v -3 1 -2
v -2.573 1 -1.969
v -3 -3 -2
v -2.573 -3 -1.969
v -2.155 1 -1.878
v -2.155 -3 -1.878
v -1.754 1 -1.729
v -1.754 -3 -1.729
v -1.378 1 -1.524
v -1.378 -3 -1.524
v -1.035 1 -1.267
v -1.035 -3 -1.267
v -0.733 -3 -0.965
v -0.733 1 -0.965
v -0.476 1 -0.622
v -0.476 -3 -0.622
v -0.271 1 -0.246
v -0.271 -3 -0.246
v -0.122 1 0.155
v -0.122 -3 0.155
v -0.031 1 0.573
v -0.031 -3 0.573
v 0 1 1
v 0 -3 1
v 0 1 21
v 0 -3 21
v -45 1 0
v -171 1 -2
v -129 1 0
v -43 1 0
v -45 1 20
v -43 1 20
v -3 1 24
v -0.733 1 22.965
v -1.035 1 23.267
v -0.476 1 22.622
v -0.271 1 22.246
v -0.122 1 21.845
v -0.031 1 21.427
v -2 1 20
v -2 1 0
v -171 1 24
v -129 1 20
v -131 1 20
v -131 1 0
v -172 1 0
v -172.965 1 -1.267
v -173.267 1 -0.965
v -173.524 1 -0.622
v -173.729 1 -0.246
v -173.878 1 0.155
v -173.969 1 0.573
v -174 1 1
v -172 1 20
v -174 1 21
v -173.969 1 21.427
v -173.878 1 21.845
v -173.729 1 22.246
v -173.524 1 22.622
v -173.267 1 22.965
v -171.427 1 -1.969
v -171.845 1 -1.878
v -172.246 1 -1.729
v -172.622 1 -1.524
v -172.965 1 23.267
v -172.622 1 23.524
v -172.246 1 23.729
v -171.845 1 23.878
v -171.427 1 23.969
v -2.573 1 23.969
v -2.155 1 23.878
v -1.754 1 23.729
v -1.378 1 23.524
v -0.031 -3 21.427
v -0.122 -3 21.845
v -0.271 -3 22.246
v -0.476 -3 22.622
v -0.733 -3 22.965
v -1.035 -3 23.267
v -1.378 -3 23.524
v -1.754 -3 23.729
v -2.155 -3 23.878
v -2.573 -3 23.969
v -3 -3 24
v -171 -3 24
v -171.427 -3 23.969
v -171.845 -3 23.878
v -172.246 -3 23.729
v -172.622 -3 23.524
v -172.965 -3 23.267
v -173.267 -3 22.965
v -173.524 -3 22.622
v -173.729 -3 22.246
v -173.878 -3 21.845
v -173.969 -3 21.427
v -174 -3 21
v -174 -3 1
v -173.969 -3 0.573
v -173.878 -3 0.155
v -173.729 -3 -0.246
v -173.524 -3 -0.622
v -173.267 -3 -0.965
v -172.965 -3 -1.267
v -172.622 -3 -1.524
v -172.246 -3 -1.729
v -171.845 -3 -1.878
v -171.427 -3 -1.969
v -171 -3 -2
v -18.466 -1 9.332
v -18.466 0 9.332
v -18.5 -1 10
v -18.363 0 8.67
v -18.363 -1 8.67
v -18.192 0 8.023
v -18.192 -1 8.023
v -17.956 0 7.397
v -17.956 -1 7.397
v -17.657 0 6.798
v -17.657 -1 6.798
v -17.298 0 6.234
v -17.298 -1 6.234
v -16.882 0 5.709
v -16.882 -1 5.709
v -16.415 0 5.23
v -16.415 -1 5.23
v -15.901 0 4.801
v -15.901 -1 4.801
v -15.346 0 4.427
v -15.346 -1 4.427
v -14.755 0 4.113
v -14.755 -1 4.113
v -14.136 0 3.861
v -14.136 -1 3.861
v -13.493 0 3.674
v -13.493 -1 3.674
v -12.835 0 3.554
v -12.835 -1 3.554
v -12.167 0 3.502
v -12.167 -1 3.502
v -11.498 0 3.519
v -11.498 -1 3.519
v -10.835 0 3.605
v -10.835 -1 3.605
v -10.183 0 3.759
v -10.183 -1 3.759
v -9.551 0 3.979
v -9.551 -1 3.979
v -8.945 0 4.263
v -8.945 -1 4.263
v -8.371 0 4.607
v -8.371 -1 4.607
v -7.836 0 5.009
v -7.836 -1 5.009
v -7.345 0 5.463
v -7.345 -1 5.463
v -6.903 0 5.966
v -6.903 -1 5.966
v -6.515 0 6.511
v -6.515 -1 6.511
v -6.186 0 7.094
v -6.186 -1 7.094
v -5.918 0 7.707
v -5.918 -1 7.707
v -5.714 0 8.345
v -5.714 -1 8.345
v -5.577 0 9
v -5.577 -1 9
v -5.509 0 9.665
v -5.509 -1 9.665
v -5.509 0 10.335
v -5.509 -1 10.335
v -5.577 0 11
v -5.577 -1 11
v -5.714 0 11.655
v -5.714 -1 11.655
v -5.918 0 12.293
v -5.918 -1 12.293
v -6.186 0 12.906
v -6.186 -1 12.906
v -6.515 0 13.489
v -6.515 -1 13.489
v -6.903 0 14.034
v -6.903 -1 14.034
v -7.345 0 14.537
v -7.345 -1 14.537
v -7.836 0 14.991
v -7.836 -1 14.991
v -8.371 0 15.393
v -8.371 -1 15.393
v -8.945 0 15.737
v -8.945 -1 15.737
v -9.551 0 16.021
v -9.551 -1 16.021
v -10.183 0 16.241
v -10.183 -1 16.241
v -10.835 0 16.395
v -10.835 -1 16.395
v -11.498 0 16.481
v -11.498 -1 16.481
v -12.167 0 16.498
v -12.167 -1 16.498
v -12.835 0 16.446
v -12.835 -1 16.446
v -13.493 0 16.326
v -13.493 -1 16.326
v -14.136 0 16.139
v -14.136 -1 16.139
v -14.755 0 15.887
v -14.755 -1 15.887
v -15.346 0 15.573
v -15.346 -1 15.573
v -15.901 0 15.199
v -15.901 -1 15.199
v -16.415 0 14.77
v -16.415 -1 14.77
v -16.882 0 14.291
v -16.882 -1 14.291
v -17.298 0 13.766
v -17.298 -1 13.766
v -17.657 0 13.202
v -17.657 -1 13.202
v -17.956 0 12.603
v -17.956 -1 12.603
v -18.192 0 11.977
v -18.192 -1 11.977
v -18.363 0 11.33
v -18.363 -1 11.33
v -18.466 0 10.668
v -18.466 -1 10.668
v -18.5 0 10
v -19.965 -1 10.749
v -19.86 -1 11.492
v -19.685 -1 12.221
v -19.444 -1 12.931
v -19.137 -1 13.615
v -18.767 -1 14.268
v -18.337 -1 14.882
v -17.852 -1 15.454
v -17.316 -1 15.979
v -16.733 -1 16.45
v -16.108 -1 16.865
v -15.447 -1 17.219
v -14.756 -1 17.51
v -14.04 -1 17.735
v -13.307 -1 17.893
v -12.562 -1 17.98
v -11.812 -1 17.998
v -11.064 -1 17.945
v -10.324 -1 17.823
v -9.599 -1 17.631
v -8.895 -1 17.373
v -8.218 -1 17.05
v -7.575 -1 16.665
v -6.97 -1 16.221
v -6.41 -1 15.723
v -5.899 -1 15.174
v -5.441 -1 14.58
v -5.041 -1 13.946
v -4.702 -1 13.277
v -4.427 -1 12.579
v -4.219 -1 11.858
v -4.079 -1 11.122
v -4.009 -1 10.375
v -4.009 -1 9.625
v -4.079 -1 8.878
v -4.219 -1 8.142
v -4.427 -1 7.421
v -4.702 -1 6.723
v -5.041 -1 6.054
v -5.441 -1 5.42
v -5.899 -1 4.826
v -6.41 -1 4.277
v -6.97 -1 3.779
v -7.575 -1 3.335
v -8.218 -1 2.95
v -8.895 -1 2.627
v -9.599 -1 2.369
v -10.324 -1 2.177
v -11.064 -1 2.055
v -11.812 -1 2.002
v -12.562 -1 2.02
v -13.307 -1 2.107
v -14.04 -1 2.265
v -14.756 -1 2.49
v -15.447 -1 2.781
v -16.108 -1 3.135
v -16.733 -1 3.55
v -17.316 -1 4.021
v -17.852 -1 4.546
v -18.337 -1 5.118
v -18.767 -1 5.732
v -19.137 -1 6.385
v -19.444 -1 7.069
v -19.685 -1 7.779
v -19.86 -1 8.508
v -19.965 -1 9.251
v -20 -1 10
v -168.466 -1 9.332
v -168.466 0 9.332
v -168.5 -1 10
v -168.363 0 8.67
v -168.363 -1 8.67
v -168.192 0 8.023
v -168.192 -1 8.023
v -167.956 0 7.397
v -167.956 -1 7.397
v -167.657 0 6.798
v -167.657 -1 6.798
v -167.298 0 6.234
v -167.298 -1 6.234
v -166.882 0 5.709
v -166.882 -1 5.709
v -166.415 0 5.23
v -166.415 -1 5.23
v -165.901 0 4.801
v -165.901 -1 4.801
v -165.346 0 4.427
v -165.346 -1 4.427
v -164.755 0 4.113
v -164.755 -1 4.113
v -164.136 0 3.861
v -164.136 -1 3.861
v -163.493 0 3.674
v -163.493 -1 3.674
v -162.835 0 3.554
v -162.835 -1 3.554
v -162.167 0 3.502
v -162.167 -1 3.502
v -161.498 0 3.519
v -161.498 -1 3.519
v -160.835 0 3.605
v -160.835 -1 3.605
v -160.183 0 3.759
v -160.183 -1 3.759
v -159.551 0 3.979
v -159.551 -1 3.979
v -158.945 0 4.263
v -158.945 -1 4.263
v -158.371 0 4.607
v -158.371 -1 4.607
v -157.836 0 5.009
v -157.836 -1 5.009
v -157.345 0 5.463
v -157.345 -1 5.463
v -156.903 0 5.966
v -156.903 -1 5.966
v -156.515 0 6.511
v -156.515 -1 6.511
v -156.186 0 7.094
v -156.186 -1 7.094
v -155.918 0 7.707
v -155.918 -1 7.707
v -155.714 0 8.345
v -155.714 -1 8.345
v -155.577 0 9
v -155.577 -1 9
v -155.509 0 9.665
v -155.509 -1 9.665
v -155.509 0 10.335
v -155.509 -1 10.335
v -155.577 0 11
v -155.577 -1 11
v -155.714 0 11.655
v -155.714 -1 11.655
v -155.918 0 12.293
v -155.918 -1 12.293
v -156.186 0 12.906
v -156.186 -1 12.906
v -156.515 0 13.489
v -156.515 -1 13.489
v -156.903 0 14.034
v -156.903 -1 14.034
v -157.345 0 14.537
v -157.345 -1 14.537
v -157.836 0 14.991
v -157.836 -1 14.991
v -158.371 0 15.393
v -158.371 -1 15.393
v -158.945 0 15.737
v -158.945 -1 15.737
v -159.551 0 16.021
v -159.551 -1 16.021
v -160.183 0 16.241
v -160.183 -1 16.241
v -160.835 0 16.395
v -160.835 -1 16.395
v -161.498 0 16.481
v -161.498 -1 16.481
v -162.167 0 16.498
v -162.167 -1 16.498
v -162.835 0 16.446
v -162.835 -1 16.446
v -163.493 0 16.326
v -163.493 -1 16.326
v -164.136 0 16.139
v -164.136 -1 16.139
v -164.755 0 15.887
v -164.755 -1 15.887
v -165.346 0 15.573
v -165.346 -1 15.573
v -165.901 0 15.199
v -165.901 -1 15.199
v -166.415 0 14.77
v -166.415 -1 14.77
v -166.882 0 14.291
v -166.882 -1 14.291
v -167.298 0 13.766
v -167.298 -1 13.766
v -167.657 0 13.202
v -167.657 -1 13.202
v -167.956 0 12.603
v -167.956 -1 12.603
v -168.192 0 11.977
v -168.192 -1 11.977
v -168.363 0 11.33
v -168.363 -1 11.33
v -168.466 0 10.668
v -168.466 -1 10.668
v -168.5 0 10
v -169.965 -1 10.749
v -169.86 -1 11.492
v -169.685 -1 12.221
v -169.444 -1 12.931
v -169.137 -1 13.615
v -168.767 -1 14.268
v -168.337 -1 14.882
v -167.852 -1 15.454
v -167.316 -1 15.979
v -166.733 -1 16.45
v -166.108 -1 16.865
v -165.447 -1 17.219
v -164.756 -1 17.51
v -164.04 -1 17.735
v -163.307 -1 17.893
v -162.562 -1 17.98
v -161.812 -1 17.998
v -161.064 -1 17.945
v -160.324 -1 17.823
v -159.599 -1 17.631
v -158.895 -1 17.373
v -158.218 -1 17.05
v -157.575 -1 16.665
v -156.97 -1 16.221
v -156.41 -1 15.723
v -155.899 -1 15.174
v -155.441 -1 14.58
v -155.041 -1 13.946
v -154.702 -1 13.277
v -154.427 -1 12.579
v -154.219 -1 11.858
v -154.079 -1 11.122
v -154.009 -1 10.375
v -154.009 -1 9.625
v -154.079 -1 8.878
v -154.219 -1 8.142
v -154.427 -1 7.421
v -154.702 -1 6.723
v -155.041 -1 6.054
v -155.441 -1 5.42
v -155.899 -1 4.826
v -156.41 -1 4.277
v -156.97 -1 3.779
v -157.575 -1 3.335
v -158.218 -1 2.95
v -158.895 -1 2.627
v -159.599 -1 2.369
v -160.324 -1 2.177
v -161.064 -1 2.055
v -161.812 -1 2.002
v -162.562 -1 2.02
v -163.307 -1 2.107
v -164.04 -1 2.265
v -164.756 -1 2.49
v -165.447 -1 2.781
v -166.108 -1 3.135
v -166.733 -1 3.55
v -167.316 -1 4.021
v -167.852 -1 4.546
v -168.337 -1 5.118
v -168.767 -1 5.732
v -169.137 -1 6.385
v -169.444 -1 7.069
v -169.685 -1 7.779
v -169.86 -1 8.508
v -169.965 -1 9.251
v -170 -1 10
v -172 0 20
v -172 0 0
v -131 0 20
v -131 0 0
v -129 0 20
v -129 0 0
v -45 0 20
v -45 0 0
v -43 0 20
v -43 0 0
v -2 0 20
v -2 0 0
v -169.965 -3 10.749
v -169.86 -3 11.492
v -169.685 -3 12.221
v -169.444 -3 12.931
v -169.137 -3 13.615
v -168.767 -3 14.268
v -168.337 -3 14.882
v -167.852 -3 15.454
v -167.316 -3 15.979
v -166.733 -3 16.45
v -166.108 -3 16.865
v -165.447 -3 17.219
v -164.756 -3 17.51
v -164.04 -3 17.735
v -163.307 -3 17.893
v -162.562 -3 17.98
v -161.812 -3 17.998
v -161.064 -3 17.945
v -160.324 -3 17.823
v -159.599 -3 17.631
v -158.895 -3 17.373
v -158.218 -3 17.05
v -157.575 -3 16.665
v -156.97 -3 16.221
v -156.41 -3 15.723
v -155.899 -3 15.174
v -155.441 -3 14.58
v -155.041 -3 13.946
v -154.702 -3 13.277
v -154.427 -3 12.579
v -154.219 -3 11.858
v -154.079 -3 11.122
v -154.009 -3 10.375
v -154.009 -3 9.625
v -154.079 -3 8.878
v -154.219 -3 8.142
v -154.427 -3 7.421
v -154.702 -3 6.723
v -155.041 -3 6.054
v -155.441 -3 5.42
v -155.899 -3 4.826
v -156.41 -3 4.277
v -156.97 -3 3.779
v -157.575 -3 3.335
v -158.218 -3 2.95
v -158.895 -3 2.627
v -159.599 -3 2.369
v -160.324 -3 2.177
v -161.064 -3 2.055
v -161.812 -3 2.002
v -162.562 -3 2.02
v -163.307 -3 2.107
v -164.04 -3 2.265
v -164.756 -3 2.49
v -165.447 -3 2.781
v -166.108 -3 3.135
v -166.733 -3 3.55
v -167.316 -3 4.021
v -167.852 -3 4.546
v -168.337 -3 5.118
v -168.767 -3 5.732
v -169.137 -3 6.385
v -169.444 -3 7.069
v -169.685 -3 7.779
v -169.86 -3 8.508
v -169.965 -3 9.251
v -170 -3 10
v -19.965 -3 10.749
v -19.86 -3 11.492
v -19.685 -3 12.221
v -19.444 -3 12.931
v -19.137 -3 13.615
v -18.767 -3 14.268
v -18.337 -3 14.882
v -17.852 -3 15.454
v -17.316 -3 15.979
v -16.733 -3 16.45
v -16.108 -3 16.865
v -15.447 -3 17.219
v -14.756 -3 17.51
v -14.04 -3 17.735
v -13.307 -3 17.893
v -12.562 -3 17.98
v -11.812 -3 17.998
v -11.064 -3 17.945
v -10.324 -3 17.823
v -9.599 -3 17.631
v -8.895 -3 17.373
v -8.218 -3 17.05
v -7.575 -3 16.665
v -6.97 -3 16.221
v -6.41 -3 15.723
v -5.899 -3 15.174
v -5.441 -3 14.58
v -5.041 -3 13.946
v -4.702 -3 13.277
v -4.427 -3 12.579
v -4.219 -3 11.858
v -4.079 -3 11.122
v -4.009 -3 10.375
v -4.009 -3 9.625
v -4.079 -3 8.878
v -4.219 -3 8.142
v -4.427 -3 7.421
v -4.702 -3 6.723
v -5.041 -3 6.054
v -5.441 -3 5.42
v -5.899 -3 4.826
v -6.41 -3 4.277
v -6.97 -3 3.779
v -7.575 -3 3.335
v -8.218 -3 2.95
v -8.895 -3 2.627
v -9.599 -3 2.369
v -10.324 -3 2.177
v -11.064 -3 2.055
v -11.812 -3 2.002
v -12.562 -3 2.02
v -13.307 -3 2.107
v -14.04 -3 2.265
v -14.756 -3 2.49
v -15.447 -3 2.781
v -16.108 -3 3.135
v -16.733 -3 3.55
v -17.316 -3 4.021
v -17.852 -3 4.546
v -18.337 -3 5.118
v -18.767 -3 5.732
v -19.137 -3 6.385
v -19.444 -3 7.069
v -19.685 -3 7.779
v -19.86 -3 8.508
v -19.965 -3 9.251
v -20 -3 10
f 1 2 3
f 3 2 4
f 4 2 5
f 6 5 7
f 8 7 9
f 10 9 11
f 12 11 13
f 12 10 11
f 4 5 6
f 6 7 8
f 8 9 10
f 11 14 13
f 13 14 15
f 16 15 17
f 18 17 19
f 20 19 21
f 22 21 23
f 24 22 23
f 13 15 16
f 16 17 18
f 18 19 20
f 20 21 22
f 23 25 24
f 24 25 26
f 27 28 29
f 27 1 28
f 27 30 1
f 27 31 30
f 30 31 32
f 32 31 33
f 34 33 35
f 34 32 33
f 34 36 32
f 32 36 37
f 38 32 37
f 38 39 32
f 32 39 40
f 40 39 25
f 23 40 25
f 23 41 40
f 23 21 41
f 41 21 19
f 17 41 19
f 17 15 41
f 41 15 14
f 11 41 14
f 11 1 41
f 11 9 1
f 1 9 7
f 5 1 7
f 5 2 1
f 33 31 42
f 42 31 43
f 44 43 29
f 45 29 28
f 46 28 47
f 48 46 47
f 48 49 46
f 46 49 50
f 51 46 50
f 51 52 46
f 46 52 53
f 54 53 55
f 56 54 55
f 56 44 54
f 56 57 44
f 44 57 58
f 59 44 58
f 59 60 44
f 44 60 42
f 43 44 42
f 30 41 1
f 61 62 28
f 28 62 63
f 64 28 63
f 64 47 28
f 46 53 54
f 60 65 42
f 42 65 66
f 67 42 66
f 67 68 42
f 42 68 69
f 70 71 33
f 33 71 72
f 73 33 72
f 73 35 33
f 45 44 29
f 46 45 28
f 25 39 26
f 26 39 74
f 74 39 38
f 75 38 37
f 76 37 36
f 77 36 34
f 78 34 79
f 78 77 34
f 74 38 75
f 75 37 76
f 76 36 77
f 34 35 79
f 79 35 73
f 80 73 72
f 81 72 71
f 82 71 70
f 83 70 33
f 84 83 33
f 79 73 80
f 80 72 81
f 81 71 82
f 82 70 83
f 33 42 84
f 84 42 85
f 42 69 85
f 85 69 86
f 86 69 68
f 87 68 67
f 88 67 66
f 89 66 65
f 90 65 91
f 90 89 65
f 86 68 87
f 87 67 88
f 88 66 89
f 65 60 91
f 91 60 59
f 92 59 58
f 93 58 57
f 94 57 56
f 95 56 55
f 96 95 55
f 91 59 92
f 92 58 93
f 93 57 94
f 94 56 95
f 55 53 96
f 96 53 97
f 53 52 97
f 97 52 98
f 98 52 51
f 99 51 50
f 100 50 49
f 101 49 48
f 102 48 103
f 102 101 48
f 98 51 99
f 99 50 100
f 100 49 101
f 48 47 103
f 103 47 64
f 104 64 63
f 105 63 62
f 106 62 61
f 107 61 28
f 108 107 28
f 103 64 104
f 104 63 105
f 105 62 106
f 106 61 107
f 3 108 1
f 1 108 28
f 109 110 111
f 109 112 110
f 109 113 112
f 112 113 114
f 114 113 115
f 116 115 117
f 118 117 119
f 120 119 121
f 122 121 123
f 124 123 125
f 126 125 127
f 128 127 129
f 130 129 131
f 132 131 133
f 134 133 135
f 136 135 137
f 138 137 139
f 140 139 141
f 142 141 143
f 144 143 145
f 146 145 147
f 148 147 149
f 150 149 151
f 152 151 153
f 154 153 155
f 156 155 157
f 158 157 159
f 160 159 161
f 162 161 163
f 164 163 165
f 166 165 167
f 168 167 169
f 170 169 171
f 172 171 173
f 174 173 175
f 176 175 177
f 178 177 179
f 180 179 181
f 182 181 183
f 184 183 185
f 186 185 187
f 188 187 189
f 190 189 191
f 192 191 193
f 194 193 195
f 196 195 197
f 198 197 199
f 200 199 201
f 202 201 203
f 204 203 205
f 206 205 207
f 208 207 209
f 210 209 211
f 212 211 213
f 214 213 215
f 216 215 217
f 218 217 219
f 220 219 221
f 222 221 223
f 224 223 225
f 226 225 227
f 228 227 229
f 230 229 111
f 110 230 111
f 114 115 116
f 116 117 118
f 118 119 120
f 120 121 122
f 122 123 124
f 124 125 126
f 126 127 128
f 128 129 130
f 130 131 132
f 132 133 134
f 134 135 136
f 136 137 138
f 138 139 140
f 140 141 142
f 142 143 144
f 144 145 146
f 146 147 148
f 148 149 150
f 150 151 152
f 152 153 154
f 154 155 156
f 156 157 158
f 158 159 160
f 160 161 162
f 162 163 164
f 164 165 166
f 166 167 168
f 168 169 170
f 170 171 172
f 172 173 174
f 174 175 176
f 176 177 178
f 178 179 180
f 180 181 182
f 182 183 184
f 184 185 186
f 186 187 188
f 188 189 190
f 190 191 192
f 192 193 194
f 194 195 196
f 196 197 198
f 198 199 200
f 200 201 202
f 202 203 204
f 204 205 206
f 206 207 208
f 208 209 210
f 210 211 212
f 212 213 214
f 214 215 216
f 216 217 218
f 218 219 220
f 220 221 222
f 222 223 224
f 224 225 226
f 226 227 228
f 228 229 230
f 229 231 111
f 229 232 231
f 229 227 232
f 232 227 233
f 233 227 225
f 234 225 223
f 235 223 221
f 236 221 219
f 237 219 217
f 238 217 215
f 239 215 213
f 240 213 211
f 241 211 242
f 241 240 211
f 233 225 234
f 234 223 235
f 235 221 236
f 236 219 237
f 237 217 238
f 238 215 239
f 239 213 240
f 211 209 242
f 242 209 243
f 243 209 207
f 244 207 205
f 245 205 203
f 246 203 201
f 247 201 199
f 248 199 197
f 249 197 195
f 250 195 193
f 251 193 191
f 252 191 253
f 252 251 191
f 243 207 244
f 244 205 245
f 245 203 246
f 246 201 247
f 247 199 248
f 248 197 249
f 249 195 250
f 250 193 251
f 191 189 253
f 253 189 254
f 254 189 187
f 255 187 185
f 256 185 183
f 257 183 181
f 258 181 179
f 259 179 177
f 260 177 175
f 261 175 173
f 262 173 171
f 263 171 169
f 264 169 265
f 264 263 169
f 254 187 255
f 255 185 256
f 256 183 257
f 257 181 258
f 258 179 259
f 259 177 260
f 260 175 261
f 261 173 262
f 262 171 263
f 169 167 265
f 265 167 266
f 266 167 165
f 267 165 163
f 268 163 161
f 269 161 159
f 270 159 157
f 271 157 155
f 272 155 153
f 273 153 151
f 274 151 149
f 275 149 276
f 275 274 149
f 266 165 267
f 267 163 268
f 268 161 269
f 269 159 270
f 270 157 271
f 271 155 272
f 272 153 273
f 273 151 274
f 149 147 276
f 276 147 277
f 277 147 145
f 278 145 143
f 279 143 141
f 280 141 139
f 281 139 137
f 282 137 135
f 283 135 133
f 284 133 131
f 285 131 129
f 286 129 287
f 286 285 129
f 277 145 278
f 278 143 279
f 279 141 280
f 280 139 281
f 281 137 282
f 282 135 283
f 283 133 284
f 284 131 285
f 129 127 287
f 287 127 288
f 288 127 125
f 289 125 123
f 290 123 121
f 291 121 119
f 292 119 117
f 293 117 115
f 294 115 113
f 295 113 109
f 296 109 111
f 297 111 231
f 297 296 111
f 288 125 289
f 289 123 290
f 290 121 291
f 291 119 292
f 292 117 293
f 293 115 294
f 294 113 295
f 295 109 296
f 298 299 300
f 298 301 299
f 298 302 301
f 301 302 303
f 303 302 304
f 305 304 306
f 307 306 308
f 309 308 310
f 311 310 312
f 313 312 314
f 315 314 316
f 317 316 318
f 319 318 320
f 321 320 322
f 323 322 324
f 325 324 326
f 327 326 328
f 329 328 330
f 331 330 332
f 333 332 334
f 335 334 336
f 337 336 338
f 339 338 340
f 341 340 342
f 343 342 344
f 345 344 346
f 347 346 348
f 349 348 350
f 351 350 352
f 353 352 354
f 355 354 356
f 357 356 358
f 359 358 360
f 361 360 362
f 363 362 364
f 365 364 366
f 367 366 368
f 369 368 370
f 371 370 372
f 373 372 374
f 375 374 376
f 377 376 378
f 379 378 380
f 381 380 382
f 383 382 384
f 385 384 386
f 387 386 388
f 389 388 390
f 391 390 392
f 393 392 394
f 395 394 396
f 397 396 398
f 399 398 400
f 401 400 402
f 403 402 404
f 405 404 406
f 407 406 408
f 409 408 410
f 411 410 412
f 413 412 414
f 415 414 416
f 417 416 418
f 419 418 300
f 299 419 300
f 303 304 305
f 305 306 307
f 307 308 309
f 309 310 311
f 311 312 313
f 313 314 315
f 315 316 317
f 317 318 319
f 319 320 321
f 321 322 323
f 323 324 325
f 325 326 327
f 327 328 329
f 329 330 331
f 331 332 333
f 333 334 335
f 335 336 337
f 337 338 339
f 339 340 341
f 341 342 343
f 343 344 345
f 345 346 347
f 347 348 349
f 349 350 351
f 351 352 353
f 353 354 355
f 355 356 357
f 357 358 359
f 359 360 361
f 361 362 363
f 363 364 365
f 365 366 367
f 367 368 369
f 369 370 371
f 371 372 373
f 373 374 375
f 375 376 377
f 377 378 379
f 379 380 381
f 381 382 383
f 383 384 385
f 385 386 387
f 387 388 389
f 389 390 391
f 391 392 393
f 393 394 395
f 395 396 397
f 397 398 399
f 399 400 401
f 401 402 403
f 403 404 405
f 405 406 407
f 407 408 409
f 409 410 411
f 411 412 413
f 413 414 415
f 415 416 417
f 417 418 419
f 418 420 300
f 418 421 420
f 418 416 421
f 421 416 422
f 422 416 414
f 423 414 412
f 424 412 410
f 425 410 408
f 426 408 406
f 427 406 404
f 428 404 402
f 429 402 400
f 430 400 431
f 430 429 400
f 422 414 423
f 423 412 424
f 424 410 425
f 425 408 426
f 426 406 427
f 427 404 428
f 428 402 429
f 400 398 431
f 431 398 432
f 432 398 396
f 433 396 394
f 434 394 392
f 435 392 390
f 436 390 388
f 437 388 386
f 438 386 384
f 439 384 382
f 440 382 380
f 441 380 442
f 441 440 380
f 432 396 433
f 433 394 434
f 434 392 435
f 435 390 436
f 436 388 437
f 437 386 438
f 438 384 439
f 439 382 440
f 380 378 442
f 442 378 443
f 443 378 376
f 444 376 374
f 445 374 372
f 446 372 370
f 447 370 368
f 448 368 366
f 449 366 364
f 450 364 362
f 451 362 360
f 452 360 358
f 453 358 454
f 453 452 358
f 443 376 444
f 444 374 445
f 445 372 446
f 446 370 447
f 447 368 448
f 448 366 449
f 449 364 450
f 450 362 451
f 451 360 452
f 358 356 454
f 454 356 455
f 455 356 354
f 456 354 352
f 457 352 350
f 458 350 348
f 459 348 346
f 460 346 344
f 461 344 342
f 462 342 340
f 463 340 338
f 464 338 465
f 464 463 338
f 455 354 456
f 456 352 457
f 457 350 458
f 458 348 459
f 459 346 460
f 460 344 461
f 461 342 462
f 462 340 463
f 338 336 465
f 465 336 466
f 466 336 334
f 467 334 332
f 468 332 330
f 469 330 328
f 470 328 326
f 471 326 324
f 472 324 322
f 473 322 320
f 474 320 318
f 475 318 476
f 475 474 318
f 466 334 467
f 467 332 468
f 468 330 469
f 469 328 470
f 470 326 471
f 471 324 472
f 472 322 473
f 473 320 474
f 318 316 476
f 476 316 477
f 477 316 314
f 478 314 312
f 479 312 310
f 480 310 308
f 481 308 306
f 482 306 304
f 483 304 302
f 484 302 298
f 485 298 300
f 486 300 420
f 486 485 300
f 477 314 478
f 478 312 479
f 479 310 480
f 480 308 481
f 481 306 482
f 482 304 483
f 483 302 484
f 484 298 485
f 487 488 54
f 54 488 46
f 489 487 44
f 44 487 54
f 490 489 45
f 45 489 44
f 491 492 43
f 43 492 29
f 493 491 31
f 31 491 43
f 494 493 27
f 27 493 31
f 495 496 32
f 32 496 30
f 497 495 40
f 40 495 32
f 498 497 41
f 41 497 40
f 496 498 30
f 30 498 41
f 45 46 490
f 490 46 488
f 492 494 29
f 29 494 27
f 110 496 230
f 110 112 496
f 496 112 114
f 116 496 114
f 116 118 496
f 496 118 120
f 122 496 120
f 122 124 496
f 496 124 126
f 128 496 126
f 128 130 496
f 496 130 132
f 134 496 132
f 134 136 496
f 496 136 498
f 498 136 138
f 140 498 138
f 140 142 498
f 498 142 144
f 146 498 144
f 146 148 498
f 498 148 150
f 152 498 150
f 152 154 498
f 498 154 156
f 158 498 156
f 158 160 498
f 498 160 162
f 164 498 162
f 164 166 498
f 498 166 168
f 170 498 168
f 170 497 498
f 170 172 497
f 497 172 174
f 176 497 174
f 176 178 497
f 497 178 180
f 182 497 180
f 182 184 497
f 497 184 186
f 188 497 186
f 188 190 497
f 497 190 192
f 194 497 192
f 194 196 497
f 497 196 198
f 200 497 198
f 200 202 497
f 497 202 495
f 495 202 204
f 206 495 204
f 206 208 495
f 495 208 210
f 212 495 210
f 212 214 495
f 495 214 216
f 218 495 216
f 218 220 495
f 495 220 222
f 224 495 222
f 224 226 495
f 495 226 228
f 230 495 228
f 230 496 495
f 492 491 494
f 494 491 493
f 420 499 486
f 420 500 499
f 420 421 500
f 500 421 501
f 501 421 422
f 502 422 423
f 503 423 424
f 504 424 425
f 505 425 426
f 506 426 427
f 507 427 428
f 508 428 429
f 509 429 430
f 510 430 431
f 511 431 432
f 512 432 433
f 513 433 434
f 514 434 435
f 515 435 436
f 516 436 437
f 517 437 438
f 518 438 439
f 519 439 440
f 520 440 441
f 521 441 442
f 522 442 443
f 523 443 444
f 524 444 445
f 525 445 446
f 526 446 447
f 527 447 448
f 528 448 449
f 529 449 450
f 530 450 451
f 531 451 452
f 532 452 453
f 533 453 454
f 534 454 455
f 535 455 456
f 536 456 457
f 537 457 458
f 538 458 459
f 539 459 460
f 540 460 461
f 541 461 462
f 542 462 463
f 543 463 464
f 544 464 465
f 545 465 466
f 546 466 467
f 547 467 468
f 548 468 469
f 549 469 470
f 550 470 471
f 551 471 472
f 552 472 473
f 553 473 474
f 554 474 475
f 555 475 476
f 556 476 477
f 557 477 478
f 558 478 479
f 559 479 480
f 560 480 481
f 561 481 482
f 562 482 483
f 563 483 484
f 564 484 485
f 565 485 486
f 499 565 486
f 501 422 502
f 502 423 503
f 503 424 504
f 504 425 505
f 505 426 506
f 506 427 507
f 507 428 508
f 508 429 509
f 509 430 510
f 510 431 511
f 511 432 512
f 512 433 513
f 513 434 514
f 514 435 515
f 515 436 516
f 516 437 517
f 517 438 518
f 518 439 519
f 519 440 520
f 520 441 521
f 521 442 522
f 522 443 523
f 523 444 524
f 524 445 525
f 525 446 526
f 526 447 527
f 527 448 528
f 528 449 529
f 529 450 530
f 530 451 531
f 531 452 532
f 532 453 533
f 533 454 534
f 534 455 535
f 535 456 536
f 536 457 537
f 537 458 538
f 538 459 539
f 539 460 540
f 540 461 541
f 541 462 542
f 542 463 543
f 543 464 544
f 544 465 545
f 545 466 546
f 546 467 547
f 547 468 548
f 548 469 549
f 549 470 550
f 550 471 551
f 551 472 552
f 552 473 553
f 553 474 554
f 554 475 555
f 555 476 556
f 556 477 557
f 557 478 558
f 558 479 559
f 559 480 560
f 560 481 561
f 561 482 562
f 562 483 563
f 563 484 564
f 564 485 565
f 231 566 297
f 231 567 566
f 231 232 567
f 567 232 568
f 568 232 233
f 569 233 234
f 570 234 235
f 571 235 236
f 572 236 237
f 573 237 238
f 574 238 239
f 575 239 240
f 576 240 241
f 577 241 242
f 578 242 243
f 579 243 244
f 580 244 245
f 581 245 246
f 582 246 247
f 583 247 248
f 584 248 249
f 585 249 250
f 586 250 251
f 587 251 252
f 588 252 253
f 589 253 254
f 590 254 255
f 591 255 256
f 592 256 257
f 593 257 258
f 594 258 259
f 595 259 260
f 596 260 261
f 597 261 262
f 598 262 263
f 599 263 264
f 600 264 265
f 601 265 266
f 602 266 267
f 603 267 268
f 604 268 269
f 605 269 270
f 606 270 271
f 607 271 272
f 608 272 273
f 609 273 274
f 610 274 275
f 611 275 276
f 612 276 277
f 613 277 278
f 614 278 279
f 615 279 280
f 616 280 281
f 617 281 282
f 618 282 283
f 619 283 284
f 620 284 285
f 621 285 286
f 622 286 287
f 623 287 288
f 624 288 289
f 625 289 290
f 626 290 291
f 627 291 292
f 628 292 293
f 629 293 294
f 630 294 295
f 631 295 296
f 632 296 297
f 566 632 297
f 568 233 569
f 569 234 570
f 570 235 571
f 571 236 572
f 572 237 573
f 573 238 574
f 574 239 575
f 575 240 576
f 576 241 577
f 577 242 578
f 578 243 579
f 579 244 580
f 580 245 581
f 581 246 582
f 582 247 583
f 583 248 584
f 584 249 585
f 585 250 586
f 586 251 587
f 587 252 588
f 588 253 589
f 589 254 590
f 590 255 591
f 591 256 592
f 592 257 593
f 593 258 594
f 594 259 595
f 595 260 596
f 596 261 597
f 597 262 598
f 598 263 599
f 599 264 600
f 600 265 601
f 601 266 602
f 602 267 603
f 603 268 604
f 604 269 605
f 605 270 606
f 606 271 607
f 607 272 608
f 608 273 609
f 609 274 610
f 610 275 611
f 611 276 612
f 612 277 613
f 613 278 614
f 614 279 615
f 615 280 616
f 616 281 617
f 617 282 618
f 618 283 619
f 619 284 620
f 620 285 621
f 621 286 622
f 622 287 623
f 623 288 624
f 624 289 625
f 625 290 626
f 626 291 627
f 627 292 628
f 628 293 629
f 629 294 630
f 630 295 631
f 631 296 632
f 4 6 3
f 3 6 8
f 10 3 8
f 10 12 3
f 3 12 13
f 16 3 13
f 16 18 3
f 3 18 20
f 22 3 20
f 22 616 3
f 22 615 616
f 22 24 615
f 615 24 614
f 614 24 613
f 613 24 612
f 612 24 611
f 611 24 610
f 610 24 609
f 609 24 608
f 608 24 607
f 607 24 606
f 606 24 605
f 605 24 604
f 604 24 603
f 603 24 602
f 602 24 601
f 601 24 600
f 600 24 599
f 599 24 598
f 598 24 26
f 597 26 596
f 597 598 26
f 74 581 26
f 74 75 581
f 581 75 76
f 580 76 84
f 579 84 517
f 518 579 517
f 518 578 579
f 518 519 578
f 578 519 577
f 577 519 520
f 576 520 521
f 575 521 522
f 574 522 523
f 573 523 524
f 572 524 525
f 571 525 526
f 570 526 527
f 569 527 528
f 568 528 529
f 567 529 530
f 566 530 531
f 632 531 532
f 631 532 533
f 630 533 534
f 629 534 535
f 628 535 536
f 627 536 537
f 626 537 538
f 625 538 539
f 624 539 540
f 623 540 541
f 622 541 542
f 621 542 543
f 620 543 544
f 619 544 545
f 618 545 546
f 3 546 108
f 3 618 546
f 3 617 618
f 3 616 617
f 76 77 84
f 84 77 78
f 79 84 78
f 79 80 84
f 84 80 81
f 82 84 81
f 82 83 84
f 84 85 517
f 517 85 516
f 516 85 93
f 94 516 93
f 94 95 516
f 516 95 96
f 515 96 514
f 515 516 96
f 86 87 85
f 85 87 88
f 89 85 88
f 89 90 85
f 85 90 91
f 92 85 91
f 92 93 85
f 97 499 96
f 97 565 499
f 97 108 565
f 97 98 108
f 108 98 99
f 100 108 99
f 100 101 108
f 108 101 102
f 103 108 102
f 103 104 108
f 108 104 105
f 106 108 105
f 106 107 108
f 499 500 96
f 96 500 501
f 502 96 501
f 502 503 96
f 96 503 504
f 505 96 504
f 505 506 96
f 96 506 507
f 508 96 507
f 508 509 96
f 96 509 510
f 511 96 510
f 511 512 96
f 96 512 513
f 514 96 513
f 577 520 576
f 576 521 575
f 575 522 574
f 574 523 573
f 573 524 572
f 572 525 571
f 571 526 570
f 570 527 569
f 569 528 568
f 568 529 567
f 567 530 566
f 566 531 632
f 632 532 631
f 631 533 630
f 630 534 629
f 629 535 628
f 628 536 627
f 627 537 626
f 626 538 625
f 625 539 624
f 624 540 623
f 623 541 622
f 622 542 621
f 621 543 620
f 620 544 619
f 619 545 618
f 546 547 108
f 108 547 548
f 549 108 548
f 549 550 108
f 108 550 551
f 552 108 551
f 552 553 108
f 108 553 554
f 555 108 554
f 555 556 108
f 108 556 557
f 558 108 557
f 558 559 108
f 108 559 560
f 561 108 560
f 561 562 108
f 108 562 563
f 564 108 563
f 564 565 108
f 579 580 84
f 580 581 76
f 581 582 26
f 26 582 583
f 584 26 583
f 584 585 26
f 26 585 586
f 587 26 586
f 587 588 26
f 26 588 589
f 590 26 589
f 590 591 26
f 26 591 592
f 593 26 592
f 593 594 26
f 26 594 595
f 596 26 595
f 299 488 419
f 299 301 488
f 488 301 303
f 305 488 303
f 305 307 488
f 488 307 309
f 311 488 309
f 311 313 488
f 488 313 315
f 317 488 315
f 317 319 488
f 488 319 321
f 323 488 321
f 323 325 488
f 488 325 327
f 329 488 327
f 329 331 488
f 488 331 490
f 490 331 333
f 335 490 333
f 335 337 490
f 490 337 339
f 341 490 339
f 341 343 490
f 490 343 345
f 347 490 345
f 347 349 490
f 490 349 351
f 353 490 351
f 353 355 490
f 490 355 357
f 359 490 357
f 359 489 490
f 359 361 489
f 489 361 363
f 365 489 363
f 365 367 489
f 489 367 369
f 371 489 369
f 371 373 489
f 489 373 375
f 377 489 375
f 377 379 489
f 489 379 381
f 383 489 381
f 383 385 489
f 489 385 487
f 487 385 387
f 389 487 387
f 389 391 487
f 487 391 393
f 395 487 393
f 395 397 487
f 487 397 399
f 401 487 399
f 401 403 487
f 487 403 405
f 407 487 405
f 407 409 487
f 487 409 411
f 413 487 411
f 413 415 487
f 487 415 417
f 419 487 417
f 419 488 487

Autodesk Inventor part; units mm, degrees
ref_plane "YZ Plane" through (0, 0, 0) normal (1, 0, 0) x (0, 1, 0)
ref_plane "XZ Plane" through (0, 0, 0) normal (0, 1, 0) x (-1, 0, 0)
ref_plane "XY Plane" through (0, 0, 0) normal (0, 0, 1) x (1, 0, 0)
sketch "Sketch1" plane through (0, 0, 0) normal (0, 1, 0) x (-1, 0, 0)
  line L0 (172, 20) -> (172, 0)
  line L1 (2, 20) -> (2, 0)
  line L2 (43, 20) -> (43, 0)
  line L3 (131, 20) -> (131, 0)
  line L4 (129, 20) -> (129, 0)
  line L5 (174, 24) -> (174, 0)
  line L6 (45, 20) -> (45, 0)
  line L7 (0, 24) -> (0, 0)
  line L8 (0, 0) -> (174, 0)
  line L9 (0, 24) -> (174, 24)
  line L10 (131, 20) -> (172, 20)
  line L11 (2, 20) -> (43, 20)
  line L12 (45, 20) -> (129, 20)
  line L13 (0, 0) -> (174, 0)
  line L14 (174, 0) -> (174, -2)
  line L15 (174, -2) -> (0, -2)
  line L16 (0, -2) -> (0, 0)
  line L17 (2, 10) -> (172, 10) construction
  line L18 (162, 20) -> (162, 0) construction
  line L19 (12, 20) -> (12, 0) construction
  circle A0 centre (12, 10) radius 8
  circle A1 centre (12, 10) radius 6.5
  circle A2 centre (162, 10) radius 6.5
  circle A3 centre (162, 10) radius 8
  dimension "d4" = 41
  dimension "d5" = 41
  dimension "d7" = 2
  dimension "d8" = 2
  dimension "d9" = 2
  dimension "d10" = 2
  dimension "d12" = 174
  dimension "d17" = 4
  dimension "d20" = 20
  dimension "d21" = 2
  dimension "d22" = 10
  dimension "d23" = 10
  dimension "d24" = 16
  dimension "d25" = 13
extrude "Extrusion1" add sketch "Sketch1" against normal blind 3 contours L10 L3 L8 L4 L12 L6 L2 L11 L1 L7 L9 L5 L0 | L0 L8 L3 L10 | L8 L14 L15 L16 | L8 L6 L12 L4 | L8 L1 L11 L2
extrude "Extrusion2" add sketch "Sketch1" along normal blind 1 contours L10 L3 L8 L4 L12 L6 L2 L11 L1 L7 L9 L5 L0 | L8 L14 L15 L16
extrude "Extrusion3" add sketch "Sketch1" against normal blind 1 contours A0 | A3
fillet "Fillet1" radius 3 4 edges at (-174, -1, -2) (-174, -1, 24) (0, -1, 24) (0, -1, -2)
properties part number "arm1a"
